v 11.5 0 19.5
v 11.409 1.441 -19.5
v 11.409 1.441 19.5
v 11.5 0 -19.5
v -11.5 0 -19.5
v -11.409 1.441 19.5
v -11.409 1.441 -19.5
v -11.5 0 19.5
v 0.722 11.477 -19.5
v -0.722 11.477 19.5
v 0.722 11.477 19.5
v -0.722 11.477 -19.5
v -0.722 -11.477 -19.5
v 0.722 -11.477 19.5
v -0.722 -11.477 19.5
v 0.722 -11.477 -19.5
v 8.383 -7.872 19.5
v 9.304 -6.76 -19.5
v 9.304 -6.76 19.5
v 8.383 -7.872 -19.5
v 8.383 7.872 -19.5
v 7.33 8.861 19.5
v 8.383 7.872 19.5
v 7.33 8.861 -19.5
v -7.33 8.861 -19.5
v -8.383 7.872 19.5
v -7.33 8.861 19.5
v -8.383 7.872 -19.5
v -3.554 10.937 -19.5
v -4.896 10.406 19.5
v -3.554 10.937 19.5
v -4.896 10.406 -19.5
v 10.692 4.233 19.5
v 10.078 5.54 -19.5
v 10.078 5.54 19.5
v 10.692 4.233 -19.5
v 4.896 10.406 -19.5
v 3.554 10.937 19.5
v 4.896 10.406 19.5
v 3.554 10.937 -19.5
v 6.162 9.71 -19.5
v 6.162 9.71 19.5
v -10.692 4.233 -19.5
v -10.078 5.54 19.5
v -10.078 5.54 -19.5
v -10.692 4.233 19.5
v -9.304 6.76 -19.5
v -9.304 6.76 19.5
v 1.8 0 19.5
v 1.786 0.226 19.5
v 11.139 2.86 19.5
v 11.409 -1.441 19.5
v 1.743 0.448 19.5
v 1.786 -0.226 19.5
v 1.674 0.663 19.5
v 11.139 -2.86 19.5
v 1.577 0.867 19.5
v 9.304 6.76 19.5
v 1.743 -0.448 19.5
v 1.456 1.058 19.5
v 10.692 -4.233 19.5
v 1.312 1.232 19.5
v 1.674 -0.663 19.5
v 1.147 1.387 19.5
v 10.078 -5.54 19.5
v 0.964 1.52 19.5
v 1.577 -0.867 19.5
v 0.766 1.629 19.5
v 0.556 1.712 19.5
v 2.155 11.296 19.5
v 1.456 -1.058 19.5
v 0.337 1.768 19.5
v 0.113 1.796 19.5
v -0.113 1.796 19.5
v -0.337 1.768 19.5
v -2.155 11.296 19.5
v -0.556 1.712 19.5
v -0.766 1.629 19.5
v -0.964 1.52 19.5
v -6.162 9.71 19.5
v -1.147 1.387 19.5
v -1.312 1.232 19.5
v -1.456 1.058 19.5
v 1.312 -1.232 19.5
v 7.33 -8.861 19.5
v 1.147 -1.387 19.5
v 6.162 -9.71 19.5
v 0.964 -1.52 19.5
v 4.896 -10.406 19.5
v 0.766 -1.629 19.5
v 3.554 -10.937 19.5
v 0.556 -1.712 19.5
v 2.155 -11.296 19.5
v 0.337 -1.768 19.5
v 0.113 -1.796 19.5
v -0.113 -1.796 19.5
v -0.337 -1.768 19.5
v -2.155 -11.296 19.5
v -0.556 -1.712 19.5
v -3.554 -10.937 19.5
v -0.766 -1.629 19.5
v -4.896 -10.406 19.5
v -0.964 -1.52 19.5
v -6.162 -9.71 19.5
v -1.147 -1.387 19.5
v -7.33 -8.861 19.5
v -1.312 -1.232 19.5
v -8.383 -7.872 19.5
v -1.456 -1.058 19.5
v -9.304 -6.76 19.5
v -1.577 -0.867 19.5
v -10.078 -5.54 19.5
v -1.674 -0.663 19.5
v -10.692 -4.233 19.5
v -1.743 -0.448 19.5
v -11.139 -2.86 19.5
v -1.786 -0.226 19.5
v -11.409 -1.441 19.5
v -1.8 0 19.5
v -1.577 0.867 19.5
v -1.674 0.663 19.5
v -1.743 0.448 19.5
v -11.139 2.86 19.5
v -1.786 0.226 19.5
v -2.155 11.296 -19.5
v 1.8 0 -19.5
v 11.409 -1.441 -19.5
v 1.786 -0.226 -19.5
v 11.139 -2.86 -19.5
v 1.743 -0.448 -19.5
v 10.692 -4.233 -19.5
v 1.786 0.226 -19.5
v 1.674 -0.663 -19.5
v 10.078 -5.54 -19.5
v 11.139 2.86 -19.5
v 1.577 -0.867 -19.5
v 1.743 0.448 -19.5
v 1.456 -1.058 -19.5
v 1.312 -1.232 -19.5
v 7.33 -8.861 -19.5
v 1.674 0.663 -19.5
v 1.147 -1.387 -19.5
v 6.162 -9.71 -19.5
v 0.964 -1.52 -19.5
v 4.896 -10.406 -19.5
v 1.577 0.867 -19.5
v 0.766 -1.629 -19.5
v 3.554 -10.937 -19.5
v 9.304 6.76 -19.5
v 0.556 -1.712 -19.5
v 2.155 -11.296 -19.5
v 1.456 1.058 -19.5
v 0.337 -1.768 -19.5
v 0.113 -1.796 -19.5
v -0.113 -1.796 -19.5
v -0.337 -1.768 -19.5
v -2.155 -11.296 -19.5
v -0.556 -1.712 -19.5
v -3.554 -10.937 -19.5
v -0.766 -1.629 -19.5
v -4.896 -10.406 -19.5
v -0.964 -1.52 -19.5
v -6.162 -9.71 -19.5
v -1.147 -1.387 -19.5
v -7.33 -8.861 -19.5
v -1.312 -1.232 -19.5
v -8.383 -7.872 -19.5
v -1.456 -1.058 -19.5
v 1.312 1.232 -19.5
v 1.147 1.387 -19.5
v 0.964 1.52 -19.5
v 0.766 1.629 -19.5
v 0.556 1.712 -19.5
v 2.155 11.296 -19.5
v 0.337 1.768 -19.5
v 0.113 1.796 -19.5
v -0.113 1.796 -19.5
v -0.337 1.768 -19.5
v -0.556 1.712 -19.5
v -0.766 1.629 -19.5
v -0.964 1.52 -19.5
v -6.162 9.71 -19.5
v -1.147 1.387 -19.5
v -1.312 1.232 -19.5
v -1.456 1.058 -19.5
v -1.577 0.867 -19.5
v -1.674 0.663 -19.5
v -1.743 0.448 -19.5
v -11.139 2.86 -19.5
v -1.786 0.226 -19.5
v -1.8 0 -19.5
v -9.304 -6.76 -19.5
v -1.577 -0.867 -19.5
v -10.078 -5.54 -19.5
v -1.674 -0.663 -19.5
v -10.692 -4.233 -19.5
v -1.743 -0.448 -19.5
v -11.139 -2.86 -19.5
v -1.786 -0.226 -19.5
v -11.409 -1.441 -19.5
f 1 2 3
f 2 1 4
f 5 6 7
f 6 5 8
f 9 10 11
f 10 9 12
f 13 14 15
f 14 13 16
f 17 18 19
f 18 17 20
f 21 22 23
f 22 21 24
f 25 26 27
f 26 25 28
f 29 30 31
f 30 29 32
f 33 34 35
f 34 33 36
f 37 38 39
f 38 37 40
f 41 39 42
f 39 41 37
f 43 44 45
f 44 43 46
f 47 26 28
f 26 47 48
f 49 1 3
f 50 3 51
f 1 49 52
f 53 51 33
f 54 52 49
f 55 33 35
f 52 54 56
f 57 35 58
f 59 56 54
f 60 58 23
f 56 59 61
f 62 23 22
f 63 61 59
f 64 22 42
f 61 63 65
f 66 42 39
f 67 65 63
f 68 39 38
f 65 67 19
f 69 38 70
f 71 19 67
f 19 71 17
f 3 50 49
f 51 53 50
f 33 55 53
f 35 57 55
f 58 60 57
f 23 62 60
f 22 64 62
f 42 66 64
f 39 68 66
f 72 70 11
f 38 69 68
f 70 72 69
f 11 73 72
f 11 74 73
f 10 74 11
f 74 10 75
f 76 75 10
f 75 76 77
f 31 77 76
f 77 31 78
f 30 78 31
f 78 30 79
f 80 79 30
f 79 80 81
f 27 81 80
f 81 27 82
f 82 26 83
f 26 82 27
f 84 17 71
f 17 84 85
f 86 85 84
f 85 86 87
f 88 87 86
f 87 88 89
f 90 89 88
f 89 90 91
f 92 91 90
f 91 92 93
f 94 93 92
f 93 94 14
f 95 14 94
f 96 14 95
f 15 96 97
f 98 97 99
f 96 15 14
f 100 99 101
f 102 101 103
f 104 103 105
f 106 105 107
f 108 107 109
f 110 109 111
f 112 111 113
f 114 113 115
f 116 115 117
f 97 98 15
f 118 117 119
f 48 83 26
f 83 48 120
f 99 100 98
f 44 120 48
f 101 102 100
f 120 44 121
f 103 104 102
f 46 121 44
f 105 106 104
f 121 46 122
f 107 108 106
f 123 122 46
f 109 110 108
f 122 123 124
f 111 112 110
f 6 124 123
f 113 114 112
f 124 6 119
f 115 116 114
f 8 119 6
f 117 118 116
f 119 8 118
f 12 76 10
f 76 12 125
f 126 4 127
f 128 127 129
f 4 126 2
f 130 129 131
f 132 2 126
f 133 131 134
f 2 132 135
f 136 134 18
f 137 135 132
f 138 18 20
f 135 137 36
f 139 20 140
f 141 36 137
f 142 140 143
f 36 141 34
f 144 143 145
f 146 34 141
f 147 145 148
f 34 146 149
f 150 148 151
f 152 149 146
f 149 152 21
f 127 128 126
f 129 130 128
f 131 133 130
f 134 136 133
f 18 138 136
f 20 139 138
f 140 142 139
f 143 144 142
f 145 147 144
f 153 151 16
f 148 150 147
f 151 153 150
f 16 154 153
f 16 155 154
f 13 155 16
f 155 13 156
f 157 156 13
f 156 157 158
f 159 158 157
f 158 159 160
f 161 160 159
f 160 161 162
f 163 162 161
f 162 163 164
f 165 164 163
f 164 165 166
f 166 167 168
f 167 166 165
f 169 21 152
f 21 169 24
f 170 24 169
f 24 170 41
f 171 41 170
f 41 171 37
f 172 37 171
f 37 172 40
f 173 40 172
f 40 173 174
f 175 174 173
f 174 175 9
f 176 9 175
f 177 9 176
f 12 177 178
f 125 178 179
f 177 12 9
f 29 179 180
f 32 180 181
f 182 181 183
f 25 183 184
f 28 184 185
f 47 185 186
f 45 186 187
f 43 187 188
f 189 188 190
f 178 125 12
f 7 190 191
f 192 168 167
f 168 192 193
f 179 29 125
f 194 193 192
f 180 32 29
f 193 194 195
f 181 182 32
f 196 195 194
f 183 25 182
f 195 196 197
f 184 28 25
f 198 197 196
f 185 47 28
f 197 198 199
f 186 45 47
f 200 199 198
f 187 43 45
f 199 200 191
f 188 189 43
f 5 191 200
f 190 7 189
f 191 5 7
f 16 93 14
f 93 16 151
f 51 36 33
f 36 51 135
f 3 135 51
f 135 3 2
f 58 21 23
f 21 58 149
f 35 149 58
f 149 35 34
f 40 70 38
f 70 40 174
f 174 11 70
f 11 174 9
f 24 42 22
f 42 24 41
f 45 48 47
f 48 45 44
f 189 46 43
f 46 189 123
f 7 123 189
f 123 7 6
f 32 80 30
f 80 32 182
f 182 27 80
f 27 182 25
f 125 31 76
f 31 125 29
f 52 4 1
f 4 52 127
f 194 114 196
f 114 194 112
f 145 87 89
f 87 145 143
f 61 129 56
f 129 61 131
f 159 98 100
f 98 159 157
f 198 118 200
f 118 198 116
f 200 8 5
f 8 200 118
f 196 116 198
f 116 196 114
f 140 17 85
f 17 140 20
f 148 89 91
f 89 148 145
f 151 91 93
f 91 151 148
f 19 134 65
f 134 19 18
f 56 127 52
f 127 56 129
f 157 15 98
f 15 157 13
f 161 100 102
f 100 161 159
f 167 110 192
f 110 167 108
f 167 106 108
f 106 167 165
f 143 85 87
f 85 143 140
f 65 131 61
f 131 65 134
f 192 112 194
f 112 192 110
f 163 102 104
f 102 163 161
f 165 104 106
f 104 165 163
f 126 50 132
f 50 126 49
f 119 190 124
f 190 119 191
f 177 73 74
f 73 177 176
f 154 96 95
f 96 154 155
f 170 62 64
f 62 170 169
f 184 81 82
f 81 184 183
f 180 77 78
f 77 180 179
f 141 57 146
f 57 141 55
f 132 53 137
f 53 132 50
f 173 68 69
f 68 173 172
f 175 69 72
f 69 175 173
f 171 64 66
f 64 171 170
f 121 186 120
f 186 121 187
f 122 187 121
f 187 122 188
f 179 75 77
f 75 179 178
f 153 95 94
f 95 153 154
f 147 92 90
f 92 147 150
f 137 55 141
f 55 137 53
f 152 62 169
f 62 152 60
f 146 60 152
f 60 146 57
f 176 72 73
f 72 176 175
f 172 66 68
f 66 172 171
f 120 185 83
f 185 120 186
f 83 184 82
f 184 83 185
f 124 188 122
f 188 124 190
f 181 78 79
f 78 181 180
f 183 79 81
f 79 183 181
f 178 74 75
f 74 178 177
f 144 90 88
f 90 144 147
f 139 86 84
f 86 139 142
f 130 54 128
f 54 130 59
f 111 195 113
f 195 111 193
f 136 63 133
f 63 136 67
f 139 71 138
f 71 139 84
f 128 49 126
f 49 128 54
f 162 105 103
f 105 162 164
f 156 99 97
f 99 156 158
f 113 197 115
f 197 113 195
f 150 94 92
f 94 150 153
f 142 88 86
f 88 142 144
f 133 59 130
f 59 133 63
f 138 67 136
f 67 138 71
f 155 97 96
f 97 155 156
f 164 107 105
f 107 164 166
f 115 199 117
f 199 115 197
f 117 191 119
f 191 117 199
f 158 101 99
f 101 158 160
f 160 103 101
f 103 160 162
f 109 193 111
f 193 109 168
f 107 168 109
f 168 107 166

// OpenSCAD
$fn = 50;


difference() {
	union() {
		translate(v = [0, 0, -19.5000000000]) {
			cylinder(h = 39, r = 11.5000000000);
		}
	}
	union() {
		translate(v = [0, 0, -100.0000000000]) {
			cylinder(h = 200, r = 1.8000000000);
		}
	}
}
